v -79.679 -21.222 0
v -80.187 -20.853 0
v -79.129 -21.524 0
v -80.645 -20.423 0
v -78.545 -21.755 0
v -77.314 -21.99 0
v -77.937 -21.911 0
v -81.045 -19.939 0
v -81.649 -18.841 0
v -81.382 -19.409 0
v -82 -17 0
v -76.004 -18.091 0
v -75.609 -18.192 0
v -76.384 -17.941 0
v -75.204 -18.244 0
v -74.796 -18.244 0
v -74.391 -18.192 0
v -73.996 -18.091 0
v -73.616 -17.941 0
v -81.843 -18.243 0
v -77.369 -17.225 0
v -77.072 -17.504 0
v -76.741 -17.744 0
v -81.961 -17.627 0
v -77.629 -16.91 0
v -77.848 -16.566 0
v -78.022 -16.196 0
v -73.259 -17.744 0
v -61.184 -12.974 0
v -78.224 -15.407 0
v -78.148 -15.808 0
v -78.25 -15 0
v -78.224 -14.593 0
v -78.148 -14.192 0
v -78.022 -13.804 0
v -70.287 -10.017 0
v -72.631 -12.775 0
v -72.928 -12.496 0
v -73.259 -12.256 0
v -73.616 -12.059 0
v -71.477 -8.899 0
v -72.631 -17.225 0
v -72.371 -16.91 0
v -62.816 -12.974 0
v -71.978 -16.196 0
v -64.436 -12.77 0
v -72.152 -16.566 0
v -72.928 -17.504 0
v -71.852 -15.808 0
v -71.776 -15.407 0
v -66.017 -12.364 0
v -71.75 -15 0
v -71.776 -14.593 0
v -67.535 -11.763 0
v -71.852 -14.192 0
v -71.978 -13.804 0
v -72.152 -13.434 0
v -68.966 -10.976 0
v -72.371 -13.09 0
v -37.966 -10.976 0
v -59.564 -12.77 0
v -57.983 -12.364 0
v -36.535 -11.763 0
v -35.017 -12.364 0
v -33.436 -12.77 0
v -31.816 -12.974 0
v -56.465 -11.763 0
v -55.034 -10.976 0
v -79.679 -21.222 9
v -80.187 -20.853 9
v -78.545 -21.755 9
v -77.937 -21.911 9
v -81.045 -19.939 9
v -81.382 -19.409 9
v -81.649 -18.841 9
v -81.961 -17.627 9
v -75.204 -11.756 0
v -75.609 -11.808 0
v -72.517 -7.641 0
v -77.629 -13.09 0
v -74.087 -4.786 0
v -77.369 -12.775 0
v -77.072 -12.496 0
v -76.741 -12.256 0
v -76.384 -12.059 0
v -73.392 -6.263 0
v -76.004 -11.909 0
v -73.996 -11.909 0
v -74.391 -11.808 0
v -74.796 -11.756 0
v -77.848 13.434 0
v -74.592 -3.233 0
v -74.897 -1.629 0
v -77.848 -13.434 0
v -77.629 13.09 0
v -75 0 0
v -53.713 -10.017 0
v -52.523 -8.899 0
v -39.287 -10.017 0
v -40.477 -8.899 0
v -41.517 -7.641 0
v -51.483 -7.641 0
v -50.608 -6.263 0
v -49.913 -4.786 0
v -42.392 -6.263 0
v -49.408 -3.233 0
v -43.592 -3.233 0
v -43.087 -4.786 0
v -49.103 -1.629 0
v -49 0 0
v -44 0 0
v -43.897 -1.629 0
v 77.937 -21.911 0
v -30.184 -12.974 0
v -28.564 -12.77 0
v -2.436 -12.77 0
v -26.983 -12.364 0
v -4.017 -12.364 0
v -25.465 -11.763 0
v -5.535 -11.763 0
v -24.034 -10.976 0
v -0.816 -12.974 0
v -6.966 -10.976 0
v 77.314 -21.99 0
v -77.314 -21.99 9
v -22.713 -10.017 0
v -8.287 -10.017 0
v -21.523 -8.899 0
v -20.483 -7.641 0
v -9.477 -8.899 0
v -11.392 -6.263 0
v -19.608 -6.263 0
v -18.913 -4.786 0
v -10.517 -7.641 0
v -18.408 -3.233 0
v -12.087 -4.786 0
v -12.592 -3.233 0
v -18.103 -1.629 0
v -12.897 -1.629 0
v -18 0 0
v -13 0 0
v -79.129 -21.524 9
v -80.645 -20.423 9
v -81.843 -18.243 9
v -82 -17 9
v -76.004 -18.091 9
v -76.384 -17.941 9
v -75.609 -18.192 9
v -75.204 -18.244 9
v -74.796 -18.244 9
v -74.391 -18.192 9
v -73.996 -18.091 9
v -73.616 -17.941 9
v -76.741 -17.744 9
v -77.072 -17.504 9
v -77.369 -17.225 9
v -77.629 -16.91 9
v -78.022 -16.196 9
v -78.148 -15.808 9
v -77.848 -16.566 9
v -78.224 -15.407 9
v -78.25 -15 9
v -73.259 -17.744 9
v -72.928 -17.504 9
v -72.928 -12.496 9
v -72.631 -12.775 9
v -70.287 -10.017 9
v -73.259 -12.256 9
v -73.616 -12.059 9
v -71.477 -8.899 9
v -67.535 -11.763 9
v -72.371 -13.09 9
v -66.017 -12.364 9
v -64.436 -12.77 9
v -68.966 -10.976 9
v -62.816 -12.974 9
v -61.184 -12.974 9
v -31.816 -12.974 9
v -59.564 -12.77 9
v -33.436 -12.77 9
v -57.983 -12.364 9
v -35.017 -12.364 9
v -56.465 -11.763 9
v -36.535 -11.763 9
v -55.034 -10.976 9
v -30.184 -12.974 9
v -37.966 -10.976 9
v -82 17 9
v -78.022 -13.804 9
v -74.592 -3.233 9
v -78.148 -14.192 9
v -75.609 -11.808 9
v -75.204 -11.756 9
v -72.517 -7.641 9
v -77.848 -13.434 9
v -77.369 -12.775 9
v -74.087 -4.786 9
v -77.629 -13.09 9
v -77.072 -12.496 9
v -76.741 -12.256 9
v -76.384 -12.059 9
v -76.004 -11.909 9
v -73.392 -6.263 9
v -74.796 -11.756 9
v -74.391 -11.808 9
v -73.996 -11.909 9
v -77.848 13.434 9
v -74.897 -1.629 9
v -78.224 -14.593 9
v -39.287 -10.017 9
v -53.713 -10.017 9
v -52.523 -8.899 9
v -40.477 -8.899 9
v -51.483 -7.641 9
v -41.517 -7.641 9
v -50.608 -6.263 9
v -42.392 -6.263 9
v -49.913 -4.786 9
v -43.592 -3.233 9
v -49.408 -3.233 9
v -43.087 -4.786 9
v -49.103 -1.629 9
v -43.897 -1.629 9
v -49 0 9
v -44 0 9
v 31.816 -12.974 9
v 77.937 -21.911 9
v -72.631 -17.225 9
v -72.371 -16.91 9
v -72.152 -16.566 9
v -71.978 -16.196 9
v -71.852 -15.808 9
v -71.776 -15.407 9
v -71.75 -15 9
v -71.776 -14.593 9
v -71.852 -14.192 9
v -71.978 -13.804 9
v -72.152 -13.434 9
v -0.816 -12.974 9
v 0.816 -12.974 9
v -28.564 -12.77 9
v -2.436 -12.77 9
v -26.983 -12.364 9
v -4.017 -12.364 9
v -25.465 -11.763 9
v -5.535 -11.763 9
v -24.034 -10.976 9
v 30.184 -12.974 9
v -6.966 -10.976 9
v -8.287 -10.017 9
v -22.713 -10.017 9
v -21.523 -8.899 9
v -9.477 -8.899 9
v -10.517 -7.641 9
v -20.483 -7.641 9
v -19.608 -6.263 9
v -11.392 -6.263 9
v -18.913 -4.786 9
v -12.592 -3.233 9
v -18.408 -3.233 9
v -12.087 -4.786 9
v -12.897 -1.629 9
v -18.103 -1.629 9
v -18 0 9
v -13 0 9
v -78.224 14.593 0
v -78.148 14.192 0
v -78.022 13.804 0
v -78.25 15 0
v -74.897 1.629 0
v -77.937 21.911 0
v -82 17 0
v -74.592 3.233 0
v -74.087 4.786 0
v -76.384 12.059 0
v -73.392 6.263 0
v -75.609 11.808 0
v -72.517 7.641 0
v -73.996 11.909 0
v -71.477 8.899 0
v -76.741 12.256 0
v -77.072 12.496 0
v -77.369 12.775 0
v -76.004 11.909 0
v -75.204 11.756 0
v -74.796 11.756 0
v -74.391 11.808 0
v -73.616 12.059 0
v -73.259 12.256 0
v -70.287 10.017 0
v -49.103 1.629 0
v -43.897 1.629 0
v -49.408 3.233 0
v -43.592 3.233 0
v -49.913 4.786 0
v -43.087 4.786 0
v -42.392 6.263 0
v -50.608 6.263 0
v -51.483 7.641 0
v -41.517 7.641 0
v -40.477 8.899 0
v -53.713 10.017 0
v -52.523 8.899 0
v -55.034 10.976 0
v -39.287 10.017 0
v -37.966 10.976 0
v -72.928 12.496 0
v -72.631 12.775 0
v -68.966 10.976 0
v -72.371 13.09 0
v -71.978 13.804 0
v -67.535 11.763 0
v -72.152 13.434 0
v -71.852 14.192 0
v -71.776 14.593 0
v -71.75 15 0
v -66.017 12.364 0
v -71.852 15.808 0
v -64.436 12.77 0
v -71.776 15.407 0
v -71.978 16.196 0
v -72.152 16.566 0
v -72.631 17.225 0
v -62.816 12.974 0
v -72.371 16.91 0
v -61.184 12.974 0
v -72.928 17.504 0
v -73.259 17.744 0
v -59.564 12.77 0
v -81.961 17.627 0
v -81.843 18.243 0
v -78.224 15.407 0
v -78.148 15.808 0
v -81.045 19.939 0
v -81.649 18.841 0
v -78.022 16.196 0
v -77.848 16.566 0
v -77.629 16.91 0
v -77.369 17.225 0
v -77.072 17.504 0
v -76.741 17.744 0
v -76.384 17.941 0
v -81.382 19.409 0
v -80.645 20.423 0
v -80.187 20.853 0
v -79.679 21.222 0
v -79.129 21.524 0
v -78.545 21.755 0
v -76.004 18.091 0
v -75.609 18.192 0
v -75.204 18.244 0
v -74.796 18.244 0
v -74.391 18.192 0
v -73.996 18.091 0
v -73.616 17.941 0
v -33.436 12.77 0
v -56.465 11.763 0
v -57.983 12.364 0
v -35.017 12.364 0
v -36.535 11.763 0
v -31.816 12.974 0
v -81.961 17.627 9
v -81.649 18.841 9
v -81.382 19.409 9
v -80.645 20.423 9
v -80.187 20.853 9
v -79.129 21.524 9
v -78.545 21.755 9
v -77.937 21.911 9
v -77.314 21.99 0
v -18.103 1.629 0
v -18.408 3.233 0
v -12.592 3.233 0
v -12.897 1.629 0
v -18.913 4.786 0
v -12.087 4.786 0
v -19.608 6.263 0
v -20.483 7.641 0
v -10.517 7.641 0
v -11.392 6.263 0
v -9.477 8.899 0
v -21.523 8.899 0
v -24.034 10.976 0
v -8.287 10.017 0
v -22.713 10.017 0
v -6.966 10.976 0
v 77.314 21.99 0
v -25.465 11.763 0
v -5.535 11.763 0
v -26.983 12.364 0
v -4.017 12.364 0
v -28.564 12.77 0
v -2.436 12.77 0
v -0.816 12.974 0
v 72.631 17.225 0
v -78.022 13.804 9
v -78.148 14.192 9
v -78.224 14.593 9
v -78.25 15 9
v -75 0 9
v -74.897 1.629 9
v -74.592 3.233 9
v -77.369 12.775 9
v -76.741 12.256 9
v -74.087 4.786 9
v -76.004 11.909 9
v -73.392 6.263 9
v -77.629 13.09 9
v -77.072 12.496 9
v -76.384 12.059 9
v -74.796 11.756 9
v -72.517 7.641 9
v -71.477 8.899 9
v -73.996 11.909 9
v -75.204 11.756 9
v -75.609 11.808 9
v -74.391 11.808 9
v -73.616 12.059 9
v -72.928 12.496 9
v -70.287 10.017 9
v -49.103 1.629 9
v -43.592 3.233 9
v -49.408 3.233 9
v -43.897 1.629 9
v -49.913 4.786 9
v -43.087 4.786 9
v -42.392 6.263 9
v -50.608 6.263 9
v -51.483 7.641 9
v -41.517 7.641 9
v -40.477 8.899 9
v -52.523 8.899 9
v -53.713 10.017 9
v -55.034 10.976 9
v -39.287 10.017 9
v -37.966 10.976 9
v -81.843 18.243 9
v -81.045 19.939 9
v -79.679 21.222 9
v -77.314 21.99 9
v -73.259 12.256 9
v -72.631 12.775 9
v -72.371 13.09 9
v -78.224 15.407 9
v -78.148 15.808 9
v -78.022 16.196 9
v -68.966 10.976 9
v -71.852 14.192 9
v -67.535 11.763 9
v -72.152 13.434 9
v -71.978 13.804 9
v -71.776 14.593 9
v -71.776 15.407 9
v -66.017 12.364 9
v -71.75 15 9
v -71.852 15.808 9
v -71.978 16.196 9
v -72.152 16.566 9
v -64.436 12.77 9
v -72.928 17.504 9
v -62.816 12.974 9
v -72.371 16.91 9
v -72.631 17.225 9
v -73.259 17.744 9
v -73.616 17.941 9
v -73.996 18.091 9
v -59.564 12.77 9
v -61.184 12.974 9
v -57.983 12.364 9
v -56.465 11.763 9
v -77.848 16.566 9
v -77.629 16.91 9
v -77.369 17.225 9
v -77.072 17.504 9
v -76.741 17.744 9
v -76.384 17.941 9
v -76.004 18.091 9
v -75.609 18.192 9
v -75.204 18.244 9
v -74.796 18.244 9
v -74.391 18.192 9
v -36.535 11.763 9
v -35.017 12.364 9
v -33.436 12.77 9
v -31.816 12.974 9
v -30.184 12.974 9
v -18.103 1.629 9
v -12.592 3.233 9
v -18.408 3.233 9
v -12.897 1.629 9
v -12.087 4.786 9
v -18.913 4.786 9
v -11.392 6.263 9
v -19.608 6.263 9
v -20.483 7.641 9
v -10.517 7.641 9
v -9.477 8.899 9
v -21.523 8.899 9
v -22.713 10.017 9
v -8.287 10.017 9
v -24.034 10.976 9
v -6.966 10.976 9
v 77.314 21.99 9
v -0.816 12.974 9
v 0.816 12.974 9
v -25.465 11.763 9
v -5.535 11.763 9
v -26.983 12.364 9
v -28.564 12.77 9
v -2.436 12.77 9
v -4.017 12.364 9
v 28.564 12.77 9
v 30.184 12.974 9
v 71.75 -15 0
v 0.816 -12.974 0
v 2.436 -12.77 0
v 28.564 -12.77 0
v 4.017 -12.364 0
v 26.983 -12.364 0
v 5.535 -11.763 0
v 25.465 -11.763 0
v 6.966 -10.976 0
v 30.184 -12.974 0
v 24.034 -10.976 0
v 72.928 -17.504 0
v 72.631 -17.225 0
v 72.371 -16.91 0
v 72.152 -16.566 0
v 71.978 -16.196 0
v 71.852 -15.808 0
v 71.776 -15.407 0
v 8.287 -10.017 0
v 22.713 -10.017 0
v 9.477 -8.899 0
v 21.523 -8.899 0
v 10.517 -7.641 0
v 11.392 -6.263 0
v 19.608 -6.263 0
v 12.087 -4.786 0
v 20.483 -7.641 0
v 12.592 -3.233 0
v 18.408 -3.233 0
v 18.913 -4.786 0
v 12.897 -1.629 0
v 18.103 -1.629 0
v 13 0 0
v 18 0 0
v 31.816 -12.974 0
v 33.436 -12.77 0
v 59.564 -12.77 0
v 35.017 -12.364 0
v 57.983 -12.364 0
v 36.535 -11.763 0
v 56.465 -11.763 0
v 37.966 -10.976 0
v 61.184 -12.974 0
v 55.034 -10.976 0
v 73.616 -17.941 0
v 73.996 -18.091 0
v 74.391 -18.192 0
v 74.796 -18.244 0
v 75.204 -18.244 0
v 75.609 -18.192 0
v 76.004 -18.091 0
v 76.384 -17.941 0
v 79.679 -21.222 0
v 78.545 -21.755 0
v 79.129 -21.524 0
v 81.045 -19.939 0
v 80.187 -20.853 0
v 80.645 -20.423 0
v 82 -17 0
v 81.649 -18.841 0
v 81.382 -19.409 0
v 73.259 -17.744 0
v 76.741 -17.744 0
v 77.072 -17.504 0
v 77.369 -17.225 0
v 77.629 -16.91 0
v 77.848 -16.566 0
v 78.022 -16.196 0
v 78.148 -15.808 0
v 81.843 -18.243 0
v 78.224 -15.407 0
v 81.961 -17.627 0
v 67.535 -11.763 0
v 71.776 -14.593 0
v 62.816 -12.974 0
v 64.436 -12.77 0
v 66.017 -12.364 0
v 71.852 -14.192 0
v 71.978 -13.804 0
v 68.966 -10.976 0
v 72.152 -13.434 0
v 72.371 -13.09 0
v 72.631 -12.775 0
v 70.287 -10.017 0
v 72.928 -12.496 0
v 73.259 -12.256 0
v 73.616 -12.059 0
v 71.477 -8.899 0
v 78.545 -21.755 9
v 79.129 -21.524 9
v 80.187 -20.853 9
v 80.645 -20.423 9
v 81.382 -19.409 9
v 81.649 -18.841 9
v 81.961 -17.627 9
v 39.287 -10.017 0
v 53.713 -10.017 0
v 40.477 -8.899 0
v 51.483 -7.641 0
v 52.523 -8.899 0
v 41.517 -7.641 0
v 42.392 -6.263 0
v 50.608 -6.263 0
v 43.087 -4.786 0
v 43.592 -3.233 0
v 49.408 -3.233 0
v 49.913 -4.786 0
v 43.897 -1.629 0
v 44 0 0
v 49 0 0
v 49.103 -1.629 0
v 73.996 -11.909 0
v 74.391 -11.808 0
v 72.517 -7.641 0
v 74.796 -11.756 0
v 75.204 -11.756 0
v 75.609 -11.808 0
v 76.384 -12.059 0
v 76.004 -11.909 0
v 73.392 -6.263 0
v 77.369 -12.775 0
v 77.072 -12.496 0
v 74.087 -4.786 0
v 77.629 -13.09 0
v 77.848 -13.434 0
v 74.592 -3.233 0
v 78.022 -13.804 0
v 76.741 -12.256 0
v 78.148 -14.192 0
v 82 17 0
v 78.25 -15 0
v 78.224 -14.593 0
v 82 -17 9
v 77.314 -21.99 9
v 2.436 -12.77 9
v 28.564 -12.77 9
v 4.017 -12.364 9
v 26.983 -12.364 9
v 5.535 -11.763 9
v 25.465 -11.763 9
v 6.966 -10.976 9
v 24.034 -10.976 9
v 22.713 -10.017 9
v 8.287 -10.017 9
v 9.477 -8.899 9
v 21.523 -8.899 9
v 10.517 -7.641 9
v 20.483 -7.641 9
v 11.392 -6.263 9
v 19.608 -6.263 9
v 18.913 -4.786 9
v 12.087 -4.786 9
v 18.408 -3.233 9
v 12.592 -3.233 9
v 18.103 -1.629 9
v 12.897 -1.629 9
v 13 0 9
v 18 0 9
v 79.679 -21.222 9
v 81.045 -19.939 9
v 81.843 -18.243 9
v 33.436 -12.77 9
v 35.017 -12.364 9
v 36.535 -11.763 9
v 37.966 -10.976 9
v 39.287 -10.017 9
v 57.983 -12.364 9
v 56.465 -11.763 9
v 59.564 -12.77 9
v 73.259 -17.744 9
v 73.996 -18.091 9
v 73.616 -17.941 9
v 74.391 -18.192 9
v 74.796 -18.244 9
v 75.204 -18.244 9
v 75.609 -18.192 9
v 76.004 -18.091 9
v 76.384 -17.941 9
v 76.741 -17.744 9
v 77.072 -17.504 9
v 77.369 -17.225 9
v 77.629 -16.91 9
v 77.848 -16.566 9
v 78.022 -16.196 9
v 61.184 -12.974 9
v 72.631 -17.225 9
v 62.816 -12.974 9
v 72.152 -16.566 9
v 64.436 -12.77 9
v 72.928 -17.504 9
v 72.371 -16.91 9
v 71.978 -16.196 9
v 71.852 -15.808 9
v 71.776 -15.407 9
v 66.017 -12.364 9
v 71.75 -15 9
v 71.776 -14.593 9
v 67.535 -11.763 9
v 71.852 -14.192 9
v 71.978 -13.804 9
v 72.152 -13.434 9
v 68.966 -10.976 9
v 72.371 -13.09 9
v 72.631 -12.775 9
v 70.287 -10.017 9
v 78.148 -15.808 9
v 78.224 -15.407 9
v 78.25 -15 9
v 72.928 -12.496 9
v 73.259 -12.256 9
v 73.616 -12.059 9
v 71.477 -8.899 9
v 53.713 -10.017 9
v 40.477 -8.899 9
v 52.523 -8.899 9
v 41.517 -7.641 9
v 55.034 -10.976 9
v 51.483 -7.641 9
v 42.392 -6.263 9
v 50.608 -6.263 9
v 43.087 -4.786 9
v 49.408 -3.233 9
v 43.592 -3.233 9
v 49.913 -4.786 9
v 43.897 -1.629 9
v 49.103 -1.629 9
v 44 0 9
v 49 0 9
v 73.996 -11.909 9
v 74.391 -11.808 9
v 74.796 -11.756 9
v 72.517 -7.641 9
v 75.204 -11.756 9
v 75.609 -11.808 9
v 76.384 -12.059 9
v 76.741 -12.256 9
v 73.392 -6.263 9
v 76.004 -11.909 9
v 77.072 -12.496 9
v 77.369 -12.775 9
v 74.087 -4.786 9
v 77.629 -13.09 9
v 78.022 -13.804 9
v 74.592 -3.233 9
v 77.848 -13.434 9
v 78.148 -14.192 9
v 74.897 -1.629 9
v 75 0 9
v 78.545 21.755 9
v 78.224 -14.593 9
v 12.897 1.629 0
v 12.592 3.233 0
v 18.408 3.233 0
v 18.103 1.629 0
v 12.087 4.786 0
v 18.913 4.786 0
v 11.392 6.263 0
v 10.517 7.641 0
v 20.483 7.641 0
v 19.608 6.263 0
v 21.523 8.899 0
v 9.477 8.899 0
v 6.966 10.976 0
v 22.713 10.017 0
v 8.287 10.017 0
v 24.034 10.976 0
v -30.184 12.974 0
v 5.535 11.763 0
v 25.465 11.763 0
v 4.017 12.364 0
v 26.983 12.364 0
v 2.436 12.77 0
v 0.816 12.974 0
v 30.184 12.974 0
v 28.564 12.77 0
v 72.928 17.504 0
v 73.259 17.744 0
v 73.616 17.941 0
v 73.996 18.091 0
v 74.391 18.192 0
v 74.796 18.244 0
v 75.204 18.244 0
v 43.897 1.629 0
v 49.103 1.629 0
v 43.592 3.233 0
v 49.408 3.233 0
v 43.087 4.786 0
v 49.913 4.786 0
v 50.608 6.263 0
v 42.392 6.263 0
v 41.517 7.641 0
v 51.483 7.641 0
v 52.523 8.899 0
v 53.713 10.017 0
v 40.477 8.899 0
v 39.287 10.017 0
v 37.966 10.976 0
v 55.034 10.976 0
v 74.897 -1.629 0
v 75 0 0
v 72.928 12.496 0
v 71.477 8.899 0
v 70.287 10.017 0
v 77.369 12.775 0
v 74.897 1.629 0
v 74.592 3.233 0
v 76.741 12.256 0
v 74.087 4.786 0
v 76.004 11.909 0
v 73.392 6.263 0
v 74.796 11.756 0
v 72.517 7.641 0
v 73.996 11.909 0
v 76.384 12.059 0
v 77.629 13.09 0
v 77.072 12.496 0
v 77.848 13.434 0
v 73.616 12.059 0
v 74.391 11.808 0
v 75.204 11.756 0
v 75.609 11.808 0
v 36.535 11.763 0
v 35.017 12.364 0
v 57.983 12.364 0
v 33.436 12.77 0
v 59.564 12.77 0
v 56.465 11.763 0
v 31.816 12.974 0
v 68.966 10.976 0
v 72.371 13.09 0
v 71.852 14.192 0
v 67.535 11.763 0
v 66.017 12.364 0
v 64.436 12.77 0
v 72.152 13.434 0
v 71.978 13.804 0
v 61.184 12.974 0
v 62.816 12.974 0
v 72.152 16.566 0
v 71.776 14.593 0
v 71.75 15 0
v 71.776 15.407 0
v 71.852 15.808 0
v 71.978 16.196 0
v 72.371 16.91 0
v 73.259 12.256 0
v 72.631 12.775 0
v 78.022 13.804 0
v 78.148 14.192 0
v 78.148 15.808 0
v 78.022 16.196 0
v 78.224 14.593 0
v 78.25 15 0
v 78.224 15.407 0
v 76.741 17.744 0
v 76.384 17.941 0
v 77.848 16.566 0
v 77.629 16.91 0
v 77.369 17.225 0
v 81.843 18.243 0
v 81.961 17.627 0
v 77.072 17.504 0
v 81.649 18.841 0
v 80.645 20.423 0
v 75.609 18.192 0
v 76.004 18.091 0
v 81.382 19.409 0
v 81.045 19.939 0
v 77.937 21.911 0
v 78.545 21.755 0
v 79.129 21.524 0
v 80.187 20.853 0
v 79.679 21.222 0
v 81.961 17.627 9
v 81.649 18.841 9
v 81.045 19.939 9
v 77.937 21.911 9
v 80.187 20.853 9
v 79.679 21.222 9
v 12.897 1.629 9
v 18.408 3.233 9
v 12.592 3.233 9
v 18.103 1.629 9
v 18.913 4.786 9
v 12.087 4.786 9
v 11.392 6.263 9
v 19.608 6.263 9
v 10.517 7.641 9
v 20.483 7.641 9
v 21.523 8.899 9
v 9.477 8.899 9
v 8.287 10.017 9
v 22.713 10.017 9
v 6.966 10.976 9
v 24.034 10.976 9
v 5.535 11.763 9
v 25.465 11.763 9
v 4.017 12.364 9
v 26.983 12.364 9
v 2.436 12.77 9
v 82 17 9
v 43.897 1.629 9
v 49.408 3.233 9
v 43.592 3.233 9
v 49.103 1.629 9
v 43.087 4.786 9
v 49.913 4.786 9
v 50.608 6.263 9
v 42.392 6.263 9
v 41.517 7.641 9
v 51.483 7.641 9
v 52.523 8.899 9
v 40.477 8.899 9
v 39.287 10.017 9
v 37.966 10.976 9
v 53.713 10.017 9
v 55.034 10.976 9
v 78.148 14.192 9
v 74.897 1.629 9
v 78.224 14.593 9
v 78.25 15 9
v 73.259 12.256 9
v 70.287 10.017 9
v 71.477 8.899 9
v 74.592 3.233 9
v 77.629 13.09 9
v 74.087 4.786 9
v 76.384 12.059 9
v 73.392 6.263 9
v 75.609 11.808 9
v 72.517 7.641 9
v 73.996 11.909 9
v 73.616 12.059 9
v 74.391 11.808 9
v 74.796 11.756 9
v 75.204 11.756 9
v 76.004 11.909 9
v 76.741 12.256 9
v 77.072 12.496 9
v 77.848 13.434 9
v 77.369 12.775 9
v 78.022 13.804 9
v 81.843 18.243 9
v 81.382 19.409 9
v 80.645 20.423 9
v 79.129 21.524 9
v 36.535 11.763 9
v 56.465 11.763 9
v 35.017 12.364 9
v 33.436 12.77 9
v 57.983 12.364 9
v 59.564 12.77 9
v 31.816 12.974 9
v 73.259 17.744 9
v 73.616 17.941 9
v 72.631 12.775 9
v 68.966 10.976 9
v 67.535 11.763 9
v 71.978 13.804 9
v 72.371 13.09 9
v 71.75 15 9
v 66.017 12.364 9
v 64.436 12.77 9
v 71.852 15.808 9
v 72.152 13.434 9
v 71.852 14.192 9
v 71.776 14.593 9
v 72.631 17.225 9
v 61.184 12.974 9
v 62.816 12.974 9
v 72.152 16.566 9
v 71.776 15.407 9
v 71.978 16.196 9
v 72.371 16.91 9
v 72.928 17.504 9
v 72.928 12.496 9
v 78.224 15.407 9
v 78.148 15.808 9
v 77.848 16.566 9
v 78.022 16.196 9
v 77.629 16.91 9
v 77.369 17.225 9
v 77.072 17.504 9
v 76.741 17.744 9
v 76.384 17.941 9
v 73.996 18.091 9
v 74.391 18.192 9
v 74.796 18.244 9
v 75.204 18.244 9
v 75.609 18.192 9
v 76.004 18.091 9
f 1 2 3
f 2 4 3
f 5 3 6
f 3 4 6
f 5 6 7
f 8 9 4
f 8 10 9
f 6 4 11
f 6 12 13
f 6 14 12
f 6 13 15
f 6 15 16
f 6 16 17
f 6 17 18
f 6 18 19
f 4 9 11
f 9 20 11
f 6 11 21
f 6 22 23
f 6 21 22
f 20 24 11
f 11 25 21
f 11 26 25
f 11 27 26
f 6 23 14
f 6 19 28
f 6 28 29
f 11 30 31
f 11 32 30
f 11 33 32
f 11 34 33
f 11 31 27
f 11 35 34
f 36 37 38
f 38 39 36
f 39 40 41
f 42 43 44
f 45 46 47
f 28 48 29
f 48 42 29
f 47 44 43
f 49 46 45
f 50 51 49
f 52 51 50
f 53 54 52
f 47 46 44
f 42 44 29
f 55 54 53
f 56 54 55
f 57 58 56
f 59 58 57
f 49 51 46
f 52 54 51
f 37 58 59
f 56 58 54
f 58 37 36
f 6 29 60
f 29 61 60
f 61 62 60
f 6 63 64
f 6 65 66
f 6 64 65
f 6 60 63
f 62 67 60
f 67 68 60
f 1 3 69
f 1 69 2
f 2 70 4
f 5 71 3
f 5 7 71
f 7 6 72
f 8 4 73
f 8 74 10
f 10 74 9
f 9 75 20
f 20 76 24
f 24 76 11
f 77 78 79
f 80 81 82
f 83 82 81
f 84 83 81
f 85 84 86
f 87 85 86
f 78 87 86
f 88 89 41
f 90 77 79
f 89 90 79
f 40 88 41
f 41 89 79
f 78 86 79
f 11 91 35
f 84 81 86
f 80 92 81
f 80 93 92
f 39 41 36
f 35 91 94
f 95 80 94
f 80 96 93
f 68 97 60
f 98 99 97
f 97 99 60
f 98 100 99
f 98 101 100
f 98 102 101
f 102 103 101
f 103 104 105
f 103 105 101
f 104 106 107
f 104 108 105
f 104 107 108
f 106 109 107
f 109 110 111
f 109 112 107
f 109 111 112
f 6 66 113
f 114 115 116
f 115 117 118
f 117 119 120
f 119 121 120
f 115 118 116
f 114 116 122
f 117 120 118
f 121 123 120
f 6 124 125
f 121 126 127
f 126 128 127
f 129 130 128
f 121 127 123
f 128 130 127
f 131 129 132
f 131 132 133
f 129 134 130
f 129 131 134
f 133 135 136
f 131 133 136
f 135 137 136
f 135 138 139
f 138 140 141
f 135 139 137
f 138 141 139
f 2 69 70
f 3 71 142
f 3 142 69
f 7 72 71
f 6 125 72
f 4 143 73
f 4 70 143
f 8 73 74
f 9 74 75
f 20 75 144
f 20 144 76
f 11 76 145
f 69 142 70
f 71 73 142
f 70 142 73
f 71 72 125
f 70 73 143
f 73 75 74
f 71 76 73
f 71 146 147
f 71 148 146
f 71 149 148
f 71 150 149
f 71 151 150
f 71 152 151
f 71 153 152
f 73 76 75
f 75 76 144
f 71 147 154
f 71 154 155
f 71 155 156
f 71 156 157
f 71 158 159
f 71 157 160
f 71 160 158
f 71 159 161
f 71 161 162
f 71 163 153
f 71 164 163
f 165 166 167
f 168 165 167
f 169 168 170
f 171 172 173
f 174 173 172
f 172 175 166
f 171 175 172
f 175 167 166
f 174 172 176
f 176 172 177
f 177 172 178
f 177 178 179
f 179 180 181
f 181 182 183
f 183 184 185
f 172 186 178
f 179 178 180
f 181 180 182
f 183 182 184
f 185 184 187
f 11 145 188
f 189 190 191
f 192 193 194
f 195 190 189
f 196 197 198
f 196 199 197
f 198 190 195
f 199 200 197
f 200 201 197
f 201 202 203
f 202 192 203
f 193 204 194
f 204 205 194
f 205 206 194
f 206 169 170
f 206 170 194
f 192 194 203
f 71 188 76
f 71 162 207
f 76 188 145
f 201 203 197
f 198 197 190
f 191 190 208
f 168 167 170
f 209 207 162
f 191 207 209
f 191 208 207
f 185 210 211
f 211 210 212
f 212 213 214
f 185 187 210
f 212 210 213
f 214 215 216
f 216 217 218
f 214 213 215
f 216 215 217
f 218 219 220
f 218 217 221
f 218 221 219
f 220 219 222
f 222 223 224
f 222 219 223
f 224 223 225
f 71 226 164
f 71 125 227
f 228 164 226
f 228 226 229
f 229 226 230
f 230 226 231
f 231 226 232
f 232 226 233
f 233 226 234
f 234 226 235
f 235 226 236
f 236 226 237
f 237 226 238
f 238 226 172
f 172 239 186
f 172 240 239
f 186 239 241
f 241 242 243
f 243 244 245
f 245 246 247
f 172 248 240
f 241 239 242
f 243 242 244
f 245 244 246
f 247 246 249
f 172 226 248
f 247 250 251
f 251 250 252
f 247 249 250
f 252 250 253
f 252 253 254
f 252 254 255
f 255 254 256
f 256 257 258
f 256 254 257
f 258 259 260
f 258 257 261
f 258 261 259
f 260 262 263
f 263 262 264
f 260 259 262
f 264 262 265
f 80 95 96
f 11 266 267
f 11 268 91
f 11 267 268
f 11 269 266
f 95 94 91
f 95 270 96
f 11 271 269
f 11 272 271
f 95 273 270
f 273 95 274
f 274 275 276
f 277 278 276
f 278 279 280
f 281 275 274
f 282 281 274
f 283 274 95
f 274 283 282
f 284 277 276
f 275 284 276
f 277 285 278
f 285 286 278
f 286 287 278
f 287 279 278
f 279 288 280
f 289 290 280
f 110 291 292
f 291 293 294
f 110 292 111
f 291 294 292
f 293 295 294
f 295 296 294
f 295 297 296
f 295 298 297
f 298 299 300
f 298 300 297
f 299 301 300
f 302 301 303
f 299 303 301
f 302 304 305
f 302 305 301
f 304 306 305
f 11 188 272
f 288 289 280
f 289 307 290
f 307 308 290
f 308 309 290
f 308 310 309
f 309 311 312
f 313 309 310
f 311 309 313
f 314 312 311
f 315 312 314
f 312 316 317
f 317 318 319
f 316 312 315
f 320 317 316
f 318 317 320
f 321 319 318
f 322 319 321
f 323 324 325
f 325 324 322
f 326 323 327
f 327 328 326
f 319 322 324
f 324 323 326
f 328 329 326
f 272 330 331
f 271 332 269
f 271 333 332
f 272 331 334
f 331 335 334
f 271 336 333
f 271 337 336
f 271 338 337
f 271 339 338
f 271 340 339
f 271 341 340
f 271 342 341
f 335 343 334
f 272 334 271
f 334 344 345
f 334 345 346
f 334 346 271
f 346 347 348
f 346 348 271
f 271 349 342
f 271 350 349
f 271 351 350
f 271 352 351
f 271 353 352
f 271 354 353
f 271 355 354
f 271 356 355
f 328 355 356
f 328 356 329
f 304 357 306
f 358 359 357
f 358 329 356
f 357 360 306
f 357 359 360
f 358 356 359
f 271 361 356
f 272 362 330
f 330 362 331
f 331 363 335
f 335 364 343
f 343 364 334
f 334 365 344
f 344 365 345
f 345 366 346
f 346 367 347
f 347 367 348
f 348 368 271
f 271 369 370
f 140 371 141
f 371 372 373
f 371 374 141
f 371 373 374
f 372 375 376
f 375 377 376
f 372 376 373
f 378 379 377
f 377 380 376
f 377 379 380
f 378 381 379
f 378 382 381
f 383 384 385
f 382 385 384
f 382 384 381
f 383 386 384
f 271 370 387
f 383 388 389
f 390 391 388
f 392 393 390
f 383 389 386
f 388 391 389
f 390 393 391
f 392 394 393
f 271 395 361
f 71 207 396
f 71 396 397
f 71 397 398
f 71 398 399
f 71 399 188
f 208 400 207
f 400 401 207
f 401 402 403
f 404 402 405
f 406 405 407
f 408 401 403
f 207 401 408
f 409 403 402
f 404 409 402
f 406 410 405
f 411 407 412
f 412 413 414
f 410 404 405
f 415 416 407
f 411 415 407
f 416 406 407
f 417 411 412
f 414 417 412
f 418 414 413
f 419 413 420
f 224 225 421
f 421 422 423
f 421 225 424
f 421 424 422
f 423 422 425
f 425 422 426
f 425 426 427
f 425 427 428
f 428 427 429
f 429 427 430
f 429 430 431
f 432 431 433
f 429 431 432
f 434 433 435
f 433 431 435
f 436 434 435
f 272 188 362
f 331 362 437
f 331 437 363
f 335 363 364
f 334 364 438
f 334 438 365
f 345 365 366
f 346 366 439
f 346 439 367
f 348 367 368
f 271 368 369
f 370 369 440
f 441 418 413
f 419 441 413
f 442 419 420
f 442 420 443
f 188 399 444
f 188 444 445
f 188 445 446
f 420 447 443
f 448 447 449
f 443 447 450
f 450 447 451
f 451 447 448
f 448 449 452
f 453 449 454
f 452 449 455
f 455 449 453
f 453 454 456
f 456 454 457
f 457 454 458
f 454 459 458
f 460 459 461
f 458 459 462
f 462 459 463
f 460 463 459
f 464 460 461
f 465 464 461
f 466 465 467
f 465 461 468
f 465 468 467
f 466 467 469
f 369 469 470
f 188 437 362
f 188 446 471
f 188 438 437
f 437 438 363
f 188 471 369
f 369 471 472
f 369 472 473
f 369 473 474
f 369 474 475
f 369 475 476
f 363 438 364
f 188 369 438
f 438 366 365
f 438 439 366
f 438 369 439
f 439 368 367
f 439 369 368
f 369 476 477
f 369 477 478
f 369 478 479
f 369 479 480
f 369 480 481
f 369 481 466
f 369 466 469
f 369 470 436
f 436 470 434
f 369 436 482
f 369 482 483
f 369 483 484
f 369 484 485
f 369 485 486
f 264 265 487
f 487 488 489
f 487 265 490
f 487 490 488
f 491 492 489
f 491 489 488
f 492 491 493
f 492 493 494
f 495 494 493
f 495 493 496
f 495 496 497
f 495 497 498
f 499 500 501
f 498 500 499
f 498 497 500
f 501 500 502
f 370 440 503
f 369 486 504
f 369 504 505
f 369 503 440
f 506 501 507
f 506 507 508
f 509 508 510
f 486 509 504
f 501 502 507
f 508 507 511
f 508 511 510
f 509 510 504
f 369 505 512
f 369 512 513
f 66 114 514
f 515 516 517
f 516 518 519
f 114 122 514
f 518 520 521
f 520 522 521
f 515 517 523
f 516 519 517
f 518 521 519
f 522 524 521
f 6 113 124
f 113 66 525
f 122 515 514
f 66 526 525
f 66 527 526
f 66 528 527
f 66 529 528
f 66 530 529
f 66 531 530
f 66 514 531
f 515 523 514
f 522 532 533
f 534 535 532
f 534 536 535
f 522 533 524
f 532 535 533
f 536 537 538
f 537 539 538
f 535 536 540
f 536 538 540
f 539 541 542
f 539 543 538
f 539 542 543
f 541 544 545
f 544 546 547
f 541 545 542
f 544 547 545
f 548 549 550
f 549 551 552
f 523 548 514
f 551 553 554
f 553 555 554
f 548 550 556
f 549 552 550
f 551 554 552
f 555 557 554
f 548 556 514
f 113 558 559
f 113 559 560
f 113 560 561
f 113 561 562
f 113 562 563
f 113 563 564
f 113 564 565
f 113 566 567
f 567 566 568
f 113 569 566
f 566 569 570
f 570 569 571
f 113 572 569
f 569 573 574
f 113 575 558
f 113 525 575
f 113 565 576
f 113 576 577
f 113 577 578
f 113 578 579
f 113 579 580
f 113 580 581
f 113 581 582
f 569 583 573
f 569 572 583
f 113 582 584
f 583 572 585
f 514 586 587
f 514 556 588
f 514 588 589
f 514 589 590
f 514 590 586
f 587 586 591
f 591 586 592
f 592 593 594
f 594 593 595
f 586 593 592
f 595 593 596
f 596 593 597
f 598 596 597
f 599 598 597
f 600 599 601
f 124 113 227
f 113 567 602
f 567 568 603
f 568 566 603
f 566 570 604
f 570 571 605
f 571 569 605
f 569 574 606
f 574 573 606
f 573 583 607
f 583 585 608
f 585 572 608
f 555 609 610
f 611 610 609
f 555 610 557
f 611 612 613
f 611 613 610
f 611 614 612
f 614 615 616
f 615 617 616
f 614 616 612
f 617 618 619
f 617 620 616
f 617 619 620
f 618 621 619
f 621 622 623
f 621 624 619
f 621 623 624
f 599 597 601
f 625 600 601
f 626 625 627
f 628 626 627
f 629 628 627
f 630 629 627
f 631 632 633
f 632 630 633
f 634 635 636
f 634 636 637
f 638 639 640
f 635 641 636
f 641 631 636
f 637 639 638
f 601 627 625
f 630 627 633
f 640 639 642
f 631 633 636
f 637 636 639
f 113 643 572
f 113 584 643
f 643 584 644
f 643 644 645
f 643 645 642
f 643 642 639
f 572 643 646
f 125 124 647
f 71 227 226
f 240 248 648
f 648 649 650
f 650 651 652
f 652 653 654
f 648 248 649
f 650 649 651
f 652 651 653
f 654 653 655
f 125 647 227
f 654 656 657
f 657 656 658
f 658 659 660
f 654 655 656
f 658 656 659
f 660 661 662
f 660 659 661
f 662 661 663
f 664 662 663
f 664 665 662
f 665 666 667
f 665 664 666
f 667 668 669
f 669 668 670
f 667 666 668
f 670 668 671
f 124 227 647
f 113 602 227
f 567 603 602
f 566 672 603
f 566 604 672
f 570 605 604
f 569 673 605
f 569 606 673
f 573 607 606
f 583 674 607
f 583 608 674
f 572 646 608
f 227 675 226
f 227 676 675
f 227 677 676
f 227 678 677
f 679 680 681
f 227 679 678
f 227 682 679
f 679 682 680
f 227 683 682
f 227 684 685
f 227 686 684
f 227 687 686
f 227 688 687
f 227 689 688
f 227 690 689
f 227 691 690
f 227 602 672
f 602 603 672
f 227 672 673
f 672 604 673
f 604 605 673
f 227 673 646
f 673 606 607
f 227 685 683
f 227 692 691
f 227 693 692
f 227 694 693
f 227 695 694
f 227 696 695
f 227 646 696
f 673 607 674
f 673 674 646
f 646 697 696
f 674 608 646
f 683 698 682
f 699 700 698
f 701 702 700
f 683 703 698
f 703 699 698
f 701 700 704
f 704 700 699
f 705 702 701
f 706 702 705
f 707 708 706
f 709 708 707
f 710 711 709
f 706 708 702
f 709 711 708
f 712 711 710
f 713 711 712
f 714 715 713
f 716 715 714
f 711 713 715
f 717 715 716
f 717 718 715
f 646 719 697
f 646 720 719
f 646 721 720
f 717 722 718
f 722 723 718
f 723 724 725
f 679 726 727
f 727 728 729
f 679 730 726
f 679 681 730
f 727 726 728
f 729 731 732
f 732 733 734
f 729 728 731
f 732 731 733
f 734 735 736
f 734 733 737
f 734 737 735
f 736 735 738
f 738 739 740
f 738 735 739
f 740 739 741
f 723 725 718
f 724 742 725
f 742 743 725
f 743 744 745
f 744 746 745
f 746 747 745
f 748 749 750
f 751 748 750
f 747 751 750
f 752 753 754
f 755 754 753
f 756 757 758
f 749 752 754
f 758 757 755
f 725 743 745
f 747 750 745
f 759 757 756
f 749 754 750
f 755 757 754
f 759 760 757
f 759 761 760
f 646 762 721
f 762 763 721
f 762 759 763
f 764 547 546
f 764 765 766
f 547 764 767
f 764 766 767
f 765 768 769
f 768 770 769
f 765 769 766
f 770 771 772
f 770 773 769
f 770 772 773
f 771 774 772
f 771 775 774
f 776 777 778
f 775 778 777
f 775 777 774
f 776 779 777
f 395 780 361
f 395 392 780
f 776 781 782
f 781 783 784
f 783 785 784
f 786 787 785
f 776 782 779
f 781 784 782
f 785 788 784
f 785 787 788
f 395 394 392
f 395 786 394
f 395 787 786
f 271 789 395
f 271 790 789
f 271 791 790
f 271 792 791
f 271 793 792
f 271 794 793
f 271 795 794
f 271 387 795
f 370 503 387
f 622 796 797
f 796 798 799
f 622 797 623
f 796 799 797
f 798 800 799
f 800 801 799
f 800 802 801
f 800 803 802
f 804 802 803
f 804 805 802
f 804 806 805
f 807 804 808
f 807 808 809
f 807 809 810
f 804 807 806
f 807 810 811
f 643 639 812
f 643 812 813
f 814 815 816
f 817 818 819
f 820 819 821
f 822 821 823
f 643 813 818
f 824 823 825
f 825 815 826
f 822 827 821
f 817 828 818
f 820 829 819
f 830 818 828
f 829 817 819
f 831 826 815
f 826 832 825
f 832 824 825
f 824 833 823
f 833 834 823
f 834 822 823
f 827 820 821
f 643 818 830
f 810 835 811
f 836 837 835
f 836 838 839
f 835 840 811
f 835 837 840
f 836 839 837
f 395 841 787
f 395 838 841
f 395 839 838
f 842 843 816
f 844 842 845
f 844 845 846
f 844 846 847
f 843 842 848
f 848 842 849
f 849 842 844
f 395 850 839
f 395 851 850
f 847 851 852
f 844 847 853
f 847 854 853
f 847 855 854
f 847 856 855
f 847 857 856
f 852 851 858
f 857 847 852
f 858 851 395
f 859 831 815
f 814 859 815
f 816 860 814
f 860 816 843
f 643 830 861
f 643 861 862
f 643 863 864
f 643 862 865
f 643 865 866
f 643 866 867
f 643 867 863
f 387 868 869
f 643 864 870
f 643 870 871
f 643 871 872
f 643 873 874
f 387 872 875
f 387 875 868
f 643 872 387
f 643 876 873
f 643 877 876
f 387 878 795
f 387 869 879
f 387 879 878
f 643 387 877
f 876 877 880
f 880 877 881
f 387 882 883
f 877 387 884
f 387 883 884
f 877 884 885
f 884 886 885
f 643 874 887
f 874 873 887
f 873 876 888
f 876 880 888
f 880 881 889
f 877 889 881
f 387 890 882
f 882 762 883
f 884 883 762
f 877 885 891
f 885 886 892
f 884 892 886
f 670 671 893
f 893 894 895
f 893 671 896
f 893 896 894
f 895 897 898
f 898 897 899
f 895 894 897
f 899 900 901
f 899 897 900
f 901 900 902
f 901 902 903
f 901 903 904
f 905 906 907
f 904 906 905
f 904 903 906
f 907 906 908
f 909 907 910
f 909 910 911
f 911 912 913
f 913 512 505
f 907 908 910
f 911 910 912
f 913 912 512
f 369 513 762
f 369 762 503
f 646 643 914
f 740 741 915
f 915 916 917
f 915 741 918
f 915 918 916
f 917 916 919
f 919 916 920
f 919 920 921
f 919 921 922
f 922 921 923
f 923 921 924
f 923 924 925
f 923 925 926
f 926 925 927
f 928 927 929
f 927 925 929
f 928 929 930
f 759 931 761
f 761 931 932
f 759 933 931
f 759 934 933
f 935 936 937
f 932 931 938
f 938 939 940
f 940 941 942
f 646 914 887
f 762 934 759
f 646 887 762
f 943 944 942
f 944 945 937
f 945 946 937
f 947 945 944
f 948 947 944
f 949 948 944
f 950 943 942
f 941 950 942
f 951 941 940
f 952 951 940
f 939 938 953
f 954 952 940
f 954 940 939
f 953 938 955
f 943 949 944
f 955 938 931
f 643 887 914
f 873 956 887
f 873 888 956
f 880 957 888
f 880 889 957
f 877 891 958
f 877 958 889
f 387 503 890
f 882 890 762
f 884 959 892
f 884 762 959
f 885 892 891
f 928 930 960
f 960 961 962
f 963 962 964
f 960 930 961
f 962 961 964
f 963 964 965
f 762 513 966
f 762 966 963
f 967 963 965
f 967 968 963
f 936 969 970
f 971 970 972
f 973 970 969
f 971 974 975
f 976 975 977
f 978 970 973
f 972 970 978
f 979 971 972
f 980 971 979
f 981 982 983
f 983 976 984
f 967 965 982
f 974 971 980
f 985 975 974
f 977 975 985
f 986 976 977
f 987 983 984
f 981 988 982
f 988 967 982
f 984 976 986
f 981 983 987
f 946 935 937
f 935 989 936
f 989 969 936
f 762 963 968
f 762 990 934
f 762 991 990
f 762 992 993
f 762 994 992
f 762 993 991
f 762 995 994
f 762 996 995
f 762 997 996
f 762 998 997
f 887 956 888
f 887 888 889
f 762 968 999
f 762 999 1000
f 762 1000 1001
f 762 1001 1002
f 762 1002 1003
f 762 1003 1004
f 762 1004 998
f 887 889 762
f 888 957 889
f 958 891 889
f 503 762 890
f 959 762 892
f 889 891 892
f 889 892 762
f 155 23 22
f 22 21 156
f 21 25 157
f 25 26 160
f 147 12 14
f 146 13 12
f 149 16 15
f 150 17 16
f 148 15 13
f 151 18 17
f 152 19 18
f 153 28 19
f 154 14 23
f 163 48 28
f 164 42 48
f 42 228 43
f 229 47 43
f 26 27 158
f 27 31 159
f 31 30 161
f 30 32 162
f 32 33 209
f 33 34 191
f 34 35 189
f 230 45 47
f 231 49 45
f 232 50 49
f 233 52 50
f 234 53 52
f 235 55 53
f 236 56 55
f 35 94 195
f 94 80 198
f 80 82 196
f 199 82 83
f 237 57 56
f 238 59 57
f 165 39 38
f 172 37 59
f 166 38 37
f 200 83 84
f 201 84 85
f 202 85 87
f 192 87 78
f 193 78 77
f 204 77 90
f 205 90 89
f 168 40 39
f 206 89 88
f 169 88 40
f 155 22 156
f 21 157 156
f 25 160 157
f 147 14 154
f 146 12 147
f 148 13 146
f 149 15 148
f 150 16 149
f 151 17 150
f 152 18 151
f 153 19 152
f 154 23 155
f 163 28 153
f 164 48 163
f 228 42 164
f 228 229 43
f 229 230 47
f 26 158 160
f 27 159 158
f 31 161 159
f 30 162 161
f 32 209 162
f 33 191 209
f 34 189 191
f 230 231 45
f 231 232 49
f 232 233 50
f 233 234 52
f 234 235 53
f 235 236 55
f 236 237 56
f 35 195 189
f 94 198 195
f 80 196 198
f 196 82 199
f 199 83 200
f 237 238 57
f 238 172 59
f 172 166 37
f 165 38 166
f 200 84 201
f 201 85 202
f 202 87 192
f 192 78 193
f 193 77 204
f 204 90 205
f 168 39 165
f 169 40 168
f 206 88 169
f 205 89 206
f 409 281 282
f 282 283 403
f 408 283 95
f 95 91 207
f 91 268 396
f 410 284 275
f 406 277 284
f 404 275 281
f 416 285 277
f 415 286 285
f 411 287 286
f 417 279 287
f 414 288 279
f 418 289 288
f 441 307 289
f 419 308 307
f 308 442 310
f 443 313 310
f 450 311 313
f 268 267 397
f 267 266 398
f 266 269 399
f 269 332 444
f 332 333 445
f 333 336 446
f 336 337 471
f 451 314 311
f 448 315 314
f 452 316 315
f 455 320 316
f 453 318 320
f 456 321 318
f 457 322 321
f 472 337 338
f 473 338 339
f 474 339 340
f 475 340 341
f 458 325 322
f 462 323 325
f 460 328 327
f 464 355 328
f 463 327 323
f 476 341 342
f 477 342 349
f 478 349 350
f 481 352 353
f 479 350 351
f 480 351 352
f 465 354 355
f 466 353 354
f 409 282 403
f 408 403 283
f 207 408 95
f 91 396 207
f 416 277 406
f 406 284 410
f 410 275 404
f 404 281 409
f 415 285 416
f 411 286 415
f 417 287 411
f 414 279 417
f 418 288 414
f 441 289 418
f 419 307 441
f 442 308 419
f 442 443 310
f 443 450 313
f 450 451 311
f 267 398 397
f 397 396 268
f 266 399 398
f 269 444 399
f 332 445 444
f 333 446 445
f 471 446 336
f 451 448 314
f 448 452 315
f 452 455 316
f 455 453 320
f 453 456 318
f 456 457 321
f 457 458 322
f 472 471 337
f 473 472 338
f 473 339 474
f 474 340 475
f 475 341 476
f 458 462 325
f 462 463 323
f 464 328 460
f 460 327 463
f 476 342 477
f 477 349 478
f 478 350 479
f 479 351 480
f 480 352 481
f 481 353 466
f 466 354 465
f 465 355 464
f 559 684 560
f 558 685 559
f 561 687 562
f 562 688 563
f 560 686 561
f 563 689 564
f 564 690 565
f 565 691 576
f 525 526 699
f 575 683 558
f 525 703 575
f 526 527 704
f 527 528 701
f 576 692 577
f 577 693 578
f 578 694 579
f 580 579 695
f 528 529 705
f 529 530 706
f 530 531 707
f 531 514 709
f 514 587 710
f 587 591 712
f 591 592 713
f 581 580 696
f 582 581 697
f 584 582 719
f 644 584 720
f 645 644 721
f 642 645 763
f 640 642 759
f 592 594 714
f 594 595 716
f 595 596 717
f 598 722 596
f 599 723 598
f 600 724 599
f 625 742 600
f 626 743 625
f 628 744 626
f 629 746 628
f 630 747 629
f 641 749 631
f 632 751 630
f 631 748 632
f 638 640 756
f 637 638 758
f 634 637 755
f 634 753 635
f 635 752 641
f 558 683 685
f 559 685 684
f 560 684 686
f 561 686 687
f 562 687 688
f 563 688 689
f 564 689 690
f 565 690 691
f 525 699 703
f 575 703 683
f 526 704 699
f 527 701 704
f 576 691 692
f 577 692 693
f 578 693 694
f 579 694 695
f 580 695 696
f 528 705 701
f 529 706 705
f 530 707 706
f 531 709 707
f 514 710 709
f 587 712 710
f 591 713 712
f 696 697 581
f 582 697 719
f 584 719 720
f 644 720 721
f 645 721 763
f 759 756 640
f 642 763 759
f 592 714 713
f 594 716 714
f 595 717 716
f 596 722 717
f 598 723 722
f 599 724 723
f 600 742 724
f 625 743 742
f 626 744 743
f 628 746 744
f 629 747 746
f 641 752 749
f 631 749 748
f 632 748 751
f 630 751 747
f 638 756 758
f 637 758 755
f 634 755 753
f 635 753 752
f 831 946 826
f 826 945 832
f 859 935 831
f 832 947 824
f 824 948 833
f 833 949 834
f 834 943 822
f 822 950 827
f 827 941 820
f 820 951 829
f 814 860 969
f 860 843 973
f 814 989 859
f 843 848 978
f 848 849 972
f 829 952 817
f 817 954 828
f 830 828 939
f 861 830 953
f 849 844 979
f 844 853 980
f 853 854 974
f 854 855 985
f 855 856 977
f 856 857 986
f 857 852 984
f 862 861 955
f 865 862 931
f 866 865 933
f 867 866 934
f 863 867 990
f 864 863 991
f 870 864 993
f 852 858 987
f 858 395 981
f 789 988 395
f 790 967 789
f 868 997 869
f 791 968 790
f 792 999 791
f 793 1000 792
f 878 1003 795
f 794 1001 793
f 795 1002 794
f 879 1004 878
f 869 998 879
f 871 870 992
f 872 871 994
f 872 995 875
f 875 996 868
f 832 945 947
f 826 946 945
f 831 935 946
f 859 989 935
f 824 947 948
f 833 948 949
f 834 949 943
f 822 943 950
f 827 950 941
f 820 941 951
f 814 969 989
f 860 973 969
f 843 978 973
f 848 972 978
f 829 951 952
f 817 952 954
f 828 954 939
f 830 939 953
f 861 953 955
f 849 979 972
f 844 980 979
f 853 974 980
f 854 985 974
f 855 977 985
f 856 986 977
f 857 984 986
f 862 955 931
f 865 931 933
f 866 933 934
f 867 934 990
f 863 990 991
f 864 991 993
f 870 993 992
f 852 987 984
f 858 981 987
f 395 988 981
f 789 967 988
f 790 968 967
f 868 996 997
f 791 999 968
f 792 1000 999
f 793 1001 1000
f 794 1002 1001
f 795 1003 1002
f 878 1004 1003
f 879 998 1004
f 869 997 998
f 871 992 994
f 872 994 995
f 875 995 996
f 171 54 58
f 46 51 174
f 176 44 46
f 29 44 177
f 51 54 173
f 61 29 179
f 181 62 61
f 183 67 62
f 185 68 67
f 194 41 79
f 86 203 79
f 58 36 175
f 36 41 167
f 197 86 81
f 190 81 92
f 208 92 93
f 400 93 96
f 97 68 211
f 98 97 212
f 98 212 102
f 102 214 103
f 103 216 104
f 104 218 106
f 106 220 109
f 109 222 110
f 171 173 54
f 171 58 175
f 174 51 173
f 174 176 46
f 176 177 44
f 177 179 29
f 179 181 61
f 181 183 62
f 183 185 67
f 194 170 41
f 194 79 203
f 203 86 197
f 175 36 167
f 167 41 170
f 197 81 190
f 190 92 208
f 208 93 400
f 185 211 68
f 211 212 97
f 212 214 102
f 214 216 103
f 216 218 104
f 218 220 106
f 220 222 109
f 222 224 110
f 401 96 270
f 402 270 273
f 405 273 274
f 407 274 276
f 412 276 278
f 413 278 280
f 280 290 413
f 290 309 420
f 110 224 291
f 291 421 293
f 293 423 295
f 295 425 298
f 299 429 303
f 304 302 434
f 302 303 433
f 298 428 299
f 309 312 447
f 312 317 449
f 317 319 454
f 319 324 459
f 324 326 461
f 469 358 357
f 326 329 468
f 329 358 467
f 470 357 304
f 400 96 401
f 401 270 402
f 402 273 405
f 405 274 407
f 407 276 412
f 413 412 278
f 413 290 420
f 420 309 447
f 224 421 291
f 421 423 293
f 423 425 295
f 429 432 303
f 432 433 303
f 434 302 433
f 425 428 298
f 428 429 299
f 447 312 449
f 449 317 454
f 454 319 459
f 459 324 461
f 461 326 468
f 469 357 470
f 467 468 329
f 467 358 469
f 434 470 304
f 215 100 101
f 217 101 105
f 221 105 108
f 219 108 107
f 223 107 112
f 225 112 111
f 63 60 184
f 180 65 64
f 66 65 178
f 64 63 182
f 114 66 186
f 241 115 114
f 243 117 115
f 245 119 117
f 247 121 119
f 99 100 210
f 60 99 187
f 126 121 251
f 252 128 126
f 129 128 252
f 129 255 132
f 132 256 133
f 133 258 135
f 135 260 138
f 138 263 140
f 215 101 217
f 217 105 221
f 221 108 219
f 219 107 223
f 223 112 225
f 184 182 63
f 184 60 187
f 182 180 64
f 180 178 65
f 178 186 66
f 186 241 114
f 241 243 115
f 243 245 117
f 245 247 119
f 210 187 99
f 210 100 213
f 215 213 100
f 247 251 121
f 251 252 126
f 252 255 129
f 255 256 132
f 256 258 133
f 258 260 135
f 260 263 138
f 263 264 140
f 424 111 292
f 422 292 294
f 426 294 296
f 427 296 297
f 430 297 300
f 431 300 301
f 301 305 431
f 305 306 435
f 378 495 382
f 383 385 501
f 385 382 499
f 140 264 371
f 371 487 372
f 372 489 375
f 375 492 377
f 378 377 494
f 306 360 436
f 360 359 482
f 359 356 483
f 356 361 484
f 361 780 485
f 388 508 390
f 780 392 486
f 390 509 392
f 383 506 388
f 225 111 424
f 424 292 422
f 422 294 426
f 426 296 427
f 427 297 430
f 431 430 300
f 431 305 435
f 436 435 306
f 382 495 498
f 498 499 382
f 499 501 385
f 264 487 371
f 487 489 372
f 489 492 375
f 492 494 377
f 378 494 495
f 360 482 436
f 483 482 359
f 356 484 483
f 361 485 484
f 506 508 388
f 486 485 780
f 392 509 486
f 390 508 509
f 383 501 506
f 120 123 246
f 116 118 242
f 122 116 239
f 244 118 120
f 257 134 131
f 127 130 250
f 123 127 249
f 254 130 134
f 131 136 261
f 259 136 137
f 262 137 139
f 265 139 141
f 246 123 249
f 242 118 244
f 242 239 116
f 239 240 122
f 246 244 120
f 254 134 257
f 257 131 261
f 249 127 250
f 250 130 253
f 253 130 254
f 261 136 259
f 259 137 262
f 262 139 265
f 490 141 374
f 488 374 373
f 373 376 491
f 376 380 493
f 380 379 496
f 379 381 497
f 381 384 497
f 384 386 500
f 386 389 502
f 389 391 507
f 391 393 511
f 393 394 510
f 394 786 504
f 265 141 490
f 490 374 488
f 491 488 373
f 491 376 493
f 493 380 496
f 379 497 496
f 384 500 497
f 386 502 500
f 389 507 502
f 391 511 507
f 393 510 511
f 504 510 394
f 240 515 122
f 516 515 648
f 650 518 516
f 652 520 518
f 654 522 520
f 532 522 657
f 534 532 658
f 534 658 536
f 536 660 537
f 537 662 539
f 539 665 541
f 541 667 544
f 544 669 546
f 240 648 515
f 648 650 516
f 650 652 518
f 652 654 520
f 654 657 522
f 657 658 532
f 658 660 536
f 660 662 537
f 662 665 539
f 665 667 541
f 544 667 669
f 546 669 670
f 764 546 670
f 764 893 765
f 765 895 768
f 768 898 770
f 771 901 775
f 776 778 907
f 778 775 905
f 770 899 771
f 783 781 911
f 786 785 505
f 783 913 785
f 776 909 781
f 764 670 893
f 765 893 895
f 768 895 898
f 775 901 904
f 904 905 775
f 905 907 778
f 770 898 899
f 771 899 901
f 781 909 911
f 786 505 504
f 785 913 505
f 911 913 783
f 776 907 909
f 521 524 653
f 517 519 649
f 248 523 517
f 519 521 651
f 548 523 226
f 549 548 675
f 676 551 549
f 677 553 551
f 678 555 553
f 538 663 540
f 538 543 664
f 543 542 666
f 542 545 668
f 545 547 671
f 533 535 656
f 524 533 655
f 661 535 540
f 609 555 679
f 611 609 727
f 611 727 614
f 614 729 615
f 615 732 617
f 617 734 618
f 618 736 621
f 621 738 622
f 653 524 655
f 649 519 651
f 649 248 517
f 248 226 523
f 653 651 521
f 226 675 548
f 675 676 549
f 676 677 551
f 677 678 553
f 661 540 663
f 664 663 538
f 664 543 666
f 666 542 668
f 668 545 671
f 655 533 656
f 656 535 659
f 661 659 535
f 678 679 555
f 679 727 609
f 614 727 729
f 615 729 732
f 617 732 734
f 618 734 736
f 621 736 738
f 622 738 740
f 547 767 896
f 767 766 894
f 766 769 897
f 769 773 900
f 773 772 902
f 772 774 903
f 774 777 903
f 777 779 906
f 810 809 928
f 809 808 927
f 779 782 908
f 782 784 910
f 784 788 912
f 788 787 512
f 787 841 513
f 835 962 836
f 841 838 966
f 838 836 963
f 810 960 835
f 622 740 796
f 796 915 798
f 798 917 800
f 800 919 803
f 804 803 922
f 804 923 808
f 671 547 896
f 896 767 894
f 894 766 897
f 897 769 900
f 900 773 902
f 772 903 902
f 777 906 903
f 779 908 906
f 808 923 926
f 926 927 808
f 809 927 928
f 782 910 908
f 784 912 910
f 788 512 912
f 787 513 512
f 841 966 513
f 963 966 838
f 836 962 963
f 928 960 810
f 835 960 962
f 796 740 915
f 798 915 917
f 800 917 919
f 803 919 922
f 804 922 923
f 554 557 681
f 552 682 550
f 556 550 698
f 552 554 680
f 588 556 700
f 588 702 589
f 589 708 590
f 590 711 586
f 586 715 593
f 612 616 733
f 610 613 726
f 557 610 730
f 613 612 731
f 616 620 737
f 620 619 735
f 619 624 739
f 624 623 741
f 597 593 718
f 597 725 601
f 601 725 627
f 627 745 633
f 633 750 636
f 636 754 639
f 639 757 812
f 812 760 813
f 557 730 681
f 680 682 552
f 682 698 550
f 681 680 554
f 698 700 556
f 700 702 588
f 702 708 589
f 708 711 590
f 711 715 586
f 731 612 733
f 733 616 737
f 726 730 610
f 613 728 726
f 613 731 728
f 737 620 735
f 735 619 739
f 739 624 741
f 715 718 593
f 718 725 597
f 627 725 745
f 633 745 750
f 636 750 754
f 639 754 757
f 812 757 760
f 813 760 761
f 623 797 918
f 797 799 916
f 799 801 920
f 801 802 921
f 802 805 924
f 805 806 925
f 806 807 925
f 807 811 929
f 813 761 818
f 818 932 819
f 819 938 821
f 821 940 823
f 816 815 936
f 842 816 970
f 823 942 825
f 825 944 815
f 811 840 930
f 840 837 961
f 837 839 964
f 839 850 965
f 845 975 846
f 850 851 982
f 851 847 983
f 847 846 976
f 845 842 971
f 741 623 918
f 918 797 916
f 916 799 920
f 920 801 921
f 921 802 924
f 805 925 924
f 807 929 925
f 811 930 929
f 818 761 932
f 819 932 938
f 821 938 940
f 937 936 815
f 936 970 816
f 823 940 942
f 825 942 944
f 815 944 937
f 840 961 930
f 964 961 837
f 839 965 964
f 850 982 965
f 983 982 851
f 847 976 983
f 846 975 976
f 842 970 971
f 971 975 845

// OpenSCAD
$fn = 50;

difference() {
	union() {
		hull() {
			translate(v = [-77.0, 17.0, 0]) {
				cylinder(h = 9, r = 5);
			}
			translate(v = [77.0, 17.0, 0]) {
				cylinder(h = 9, r = 5);
			}
			translate(v = [-77.0, -17.0, 0]) {
				cylinder(h = 9, r = 5);
			}
			translate(v = [77.0, -17.0, 0]) {
				cylinder(h = 9, r = 5);
			}
		}
	}
	union() {
		translate(v = [-75.0, -15.0, -100.0]) {
			cylinder(h = 200, r = 3.25);
		}
		translate(v = [-75.0, 15.0, -100.0]) {
			cylinder(h = 200, r = 3.25);
		}
		translate(v = [75.0, -15.0, -100.0]) {
			cylinder(h = 200, r = 3.25);
		}
		translate(v = [75.0, 15.0, -100.0]) {
			cylinder(h = 200, r = 3.25);
		}
		translate(v = [-75.0, -15.0, -100.0]) {
			cylinder(h = 200, r = 1.8);
		}
		translate(v = [-75.0, 15.0, -100.0]) {
			cylinder(h = 200, r = 1.8);
		}
		translate(v = [75.0, -15.0, -100.0]) {
			cylinder(h = 200, r = 1.8);
		}
		translate(v = [75.0, 15.0, -100.0]) {
			cylinder(h = 200, r = 1.8);
		}
		translate(v = [-62.0, 0, 0.0]) {
			cylinder(h = 9, r = 13.0);
		}
		translate(v = [-31.0, 0, 0.0]) {
			cylinder(h = 9, r = 13.0);
		}
		cylinder(h = 9, r = 13.0);
		translate(v = [31.0, 0, 0.0]) {
			cylinder(h = 9, r = 13.0);
		}
		translate(v = [62.0, 0, 0.0]) {
			cylinder(h = 9, r = 13.0);
		}
	}
}
